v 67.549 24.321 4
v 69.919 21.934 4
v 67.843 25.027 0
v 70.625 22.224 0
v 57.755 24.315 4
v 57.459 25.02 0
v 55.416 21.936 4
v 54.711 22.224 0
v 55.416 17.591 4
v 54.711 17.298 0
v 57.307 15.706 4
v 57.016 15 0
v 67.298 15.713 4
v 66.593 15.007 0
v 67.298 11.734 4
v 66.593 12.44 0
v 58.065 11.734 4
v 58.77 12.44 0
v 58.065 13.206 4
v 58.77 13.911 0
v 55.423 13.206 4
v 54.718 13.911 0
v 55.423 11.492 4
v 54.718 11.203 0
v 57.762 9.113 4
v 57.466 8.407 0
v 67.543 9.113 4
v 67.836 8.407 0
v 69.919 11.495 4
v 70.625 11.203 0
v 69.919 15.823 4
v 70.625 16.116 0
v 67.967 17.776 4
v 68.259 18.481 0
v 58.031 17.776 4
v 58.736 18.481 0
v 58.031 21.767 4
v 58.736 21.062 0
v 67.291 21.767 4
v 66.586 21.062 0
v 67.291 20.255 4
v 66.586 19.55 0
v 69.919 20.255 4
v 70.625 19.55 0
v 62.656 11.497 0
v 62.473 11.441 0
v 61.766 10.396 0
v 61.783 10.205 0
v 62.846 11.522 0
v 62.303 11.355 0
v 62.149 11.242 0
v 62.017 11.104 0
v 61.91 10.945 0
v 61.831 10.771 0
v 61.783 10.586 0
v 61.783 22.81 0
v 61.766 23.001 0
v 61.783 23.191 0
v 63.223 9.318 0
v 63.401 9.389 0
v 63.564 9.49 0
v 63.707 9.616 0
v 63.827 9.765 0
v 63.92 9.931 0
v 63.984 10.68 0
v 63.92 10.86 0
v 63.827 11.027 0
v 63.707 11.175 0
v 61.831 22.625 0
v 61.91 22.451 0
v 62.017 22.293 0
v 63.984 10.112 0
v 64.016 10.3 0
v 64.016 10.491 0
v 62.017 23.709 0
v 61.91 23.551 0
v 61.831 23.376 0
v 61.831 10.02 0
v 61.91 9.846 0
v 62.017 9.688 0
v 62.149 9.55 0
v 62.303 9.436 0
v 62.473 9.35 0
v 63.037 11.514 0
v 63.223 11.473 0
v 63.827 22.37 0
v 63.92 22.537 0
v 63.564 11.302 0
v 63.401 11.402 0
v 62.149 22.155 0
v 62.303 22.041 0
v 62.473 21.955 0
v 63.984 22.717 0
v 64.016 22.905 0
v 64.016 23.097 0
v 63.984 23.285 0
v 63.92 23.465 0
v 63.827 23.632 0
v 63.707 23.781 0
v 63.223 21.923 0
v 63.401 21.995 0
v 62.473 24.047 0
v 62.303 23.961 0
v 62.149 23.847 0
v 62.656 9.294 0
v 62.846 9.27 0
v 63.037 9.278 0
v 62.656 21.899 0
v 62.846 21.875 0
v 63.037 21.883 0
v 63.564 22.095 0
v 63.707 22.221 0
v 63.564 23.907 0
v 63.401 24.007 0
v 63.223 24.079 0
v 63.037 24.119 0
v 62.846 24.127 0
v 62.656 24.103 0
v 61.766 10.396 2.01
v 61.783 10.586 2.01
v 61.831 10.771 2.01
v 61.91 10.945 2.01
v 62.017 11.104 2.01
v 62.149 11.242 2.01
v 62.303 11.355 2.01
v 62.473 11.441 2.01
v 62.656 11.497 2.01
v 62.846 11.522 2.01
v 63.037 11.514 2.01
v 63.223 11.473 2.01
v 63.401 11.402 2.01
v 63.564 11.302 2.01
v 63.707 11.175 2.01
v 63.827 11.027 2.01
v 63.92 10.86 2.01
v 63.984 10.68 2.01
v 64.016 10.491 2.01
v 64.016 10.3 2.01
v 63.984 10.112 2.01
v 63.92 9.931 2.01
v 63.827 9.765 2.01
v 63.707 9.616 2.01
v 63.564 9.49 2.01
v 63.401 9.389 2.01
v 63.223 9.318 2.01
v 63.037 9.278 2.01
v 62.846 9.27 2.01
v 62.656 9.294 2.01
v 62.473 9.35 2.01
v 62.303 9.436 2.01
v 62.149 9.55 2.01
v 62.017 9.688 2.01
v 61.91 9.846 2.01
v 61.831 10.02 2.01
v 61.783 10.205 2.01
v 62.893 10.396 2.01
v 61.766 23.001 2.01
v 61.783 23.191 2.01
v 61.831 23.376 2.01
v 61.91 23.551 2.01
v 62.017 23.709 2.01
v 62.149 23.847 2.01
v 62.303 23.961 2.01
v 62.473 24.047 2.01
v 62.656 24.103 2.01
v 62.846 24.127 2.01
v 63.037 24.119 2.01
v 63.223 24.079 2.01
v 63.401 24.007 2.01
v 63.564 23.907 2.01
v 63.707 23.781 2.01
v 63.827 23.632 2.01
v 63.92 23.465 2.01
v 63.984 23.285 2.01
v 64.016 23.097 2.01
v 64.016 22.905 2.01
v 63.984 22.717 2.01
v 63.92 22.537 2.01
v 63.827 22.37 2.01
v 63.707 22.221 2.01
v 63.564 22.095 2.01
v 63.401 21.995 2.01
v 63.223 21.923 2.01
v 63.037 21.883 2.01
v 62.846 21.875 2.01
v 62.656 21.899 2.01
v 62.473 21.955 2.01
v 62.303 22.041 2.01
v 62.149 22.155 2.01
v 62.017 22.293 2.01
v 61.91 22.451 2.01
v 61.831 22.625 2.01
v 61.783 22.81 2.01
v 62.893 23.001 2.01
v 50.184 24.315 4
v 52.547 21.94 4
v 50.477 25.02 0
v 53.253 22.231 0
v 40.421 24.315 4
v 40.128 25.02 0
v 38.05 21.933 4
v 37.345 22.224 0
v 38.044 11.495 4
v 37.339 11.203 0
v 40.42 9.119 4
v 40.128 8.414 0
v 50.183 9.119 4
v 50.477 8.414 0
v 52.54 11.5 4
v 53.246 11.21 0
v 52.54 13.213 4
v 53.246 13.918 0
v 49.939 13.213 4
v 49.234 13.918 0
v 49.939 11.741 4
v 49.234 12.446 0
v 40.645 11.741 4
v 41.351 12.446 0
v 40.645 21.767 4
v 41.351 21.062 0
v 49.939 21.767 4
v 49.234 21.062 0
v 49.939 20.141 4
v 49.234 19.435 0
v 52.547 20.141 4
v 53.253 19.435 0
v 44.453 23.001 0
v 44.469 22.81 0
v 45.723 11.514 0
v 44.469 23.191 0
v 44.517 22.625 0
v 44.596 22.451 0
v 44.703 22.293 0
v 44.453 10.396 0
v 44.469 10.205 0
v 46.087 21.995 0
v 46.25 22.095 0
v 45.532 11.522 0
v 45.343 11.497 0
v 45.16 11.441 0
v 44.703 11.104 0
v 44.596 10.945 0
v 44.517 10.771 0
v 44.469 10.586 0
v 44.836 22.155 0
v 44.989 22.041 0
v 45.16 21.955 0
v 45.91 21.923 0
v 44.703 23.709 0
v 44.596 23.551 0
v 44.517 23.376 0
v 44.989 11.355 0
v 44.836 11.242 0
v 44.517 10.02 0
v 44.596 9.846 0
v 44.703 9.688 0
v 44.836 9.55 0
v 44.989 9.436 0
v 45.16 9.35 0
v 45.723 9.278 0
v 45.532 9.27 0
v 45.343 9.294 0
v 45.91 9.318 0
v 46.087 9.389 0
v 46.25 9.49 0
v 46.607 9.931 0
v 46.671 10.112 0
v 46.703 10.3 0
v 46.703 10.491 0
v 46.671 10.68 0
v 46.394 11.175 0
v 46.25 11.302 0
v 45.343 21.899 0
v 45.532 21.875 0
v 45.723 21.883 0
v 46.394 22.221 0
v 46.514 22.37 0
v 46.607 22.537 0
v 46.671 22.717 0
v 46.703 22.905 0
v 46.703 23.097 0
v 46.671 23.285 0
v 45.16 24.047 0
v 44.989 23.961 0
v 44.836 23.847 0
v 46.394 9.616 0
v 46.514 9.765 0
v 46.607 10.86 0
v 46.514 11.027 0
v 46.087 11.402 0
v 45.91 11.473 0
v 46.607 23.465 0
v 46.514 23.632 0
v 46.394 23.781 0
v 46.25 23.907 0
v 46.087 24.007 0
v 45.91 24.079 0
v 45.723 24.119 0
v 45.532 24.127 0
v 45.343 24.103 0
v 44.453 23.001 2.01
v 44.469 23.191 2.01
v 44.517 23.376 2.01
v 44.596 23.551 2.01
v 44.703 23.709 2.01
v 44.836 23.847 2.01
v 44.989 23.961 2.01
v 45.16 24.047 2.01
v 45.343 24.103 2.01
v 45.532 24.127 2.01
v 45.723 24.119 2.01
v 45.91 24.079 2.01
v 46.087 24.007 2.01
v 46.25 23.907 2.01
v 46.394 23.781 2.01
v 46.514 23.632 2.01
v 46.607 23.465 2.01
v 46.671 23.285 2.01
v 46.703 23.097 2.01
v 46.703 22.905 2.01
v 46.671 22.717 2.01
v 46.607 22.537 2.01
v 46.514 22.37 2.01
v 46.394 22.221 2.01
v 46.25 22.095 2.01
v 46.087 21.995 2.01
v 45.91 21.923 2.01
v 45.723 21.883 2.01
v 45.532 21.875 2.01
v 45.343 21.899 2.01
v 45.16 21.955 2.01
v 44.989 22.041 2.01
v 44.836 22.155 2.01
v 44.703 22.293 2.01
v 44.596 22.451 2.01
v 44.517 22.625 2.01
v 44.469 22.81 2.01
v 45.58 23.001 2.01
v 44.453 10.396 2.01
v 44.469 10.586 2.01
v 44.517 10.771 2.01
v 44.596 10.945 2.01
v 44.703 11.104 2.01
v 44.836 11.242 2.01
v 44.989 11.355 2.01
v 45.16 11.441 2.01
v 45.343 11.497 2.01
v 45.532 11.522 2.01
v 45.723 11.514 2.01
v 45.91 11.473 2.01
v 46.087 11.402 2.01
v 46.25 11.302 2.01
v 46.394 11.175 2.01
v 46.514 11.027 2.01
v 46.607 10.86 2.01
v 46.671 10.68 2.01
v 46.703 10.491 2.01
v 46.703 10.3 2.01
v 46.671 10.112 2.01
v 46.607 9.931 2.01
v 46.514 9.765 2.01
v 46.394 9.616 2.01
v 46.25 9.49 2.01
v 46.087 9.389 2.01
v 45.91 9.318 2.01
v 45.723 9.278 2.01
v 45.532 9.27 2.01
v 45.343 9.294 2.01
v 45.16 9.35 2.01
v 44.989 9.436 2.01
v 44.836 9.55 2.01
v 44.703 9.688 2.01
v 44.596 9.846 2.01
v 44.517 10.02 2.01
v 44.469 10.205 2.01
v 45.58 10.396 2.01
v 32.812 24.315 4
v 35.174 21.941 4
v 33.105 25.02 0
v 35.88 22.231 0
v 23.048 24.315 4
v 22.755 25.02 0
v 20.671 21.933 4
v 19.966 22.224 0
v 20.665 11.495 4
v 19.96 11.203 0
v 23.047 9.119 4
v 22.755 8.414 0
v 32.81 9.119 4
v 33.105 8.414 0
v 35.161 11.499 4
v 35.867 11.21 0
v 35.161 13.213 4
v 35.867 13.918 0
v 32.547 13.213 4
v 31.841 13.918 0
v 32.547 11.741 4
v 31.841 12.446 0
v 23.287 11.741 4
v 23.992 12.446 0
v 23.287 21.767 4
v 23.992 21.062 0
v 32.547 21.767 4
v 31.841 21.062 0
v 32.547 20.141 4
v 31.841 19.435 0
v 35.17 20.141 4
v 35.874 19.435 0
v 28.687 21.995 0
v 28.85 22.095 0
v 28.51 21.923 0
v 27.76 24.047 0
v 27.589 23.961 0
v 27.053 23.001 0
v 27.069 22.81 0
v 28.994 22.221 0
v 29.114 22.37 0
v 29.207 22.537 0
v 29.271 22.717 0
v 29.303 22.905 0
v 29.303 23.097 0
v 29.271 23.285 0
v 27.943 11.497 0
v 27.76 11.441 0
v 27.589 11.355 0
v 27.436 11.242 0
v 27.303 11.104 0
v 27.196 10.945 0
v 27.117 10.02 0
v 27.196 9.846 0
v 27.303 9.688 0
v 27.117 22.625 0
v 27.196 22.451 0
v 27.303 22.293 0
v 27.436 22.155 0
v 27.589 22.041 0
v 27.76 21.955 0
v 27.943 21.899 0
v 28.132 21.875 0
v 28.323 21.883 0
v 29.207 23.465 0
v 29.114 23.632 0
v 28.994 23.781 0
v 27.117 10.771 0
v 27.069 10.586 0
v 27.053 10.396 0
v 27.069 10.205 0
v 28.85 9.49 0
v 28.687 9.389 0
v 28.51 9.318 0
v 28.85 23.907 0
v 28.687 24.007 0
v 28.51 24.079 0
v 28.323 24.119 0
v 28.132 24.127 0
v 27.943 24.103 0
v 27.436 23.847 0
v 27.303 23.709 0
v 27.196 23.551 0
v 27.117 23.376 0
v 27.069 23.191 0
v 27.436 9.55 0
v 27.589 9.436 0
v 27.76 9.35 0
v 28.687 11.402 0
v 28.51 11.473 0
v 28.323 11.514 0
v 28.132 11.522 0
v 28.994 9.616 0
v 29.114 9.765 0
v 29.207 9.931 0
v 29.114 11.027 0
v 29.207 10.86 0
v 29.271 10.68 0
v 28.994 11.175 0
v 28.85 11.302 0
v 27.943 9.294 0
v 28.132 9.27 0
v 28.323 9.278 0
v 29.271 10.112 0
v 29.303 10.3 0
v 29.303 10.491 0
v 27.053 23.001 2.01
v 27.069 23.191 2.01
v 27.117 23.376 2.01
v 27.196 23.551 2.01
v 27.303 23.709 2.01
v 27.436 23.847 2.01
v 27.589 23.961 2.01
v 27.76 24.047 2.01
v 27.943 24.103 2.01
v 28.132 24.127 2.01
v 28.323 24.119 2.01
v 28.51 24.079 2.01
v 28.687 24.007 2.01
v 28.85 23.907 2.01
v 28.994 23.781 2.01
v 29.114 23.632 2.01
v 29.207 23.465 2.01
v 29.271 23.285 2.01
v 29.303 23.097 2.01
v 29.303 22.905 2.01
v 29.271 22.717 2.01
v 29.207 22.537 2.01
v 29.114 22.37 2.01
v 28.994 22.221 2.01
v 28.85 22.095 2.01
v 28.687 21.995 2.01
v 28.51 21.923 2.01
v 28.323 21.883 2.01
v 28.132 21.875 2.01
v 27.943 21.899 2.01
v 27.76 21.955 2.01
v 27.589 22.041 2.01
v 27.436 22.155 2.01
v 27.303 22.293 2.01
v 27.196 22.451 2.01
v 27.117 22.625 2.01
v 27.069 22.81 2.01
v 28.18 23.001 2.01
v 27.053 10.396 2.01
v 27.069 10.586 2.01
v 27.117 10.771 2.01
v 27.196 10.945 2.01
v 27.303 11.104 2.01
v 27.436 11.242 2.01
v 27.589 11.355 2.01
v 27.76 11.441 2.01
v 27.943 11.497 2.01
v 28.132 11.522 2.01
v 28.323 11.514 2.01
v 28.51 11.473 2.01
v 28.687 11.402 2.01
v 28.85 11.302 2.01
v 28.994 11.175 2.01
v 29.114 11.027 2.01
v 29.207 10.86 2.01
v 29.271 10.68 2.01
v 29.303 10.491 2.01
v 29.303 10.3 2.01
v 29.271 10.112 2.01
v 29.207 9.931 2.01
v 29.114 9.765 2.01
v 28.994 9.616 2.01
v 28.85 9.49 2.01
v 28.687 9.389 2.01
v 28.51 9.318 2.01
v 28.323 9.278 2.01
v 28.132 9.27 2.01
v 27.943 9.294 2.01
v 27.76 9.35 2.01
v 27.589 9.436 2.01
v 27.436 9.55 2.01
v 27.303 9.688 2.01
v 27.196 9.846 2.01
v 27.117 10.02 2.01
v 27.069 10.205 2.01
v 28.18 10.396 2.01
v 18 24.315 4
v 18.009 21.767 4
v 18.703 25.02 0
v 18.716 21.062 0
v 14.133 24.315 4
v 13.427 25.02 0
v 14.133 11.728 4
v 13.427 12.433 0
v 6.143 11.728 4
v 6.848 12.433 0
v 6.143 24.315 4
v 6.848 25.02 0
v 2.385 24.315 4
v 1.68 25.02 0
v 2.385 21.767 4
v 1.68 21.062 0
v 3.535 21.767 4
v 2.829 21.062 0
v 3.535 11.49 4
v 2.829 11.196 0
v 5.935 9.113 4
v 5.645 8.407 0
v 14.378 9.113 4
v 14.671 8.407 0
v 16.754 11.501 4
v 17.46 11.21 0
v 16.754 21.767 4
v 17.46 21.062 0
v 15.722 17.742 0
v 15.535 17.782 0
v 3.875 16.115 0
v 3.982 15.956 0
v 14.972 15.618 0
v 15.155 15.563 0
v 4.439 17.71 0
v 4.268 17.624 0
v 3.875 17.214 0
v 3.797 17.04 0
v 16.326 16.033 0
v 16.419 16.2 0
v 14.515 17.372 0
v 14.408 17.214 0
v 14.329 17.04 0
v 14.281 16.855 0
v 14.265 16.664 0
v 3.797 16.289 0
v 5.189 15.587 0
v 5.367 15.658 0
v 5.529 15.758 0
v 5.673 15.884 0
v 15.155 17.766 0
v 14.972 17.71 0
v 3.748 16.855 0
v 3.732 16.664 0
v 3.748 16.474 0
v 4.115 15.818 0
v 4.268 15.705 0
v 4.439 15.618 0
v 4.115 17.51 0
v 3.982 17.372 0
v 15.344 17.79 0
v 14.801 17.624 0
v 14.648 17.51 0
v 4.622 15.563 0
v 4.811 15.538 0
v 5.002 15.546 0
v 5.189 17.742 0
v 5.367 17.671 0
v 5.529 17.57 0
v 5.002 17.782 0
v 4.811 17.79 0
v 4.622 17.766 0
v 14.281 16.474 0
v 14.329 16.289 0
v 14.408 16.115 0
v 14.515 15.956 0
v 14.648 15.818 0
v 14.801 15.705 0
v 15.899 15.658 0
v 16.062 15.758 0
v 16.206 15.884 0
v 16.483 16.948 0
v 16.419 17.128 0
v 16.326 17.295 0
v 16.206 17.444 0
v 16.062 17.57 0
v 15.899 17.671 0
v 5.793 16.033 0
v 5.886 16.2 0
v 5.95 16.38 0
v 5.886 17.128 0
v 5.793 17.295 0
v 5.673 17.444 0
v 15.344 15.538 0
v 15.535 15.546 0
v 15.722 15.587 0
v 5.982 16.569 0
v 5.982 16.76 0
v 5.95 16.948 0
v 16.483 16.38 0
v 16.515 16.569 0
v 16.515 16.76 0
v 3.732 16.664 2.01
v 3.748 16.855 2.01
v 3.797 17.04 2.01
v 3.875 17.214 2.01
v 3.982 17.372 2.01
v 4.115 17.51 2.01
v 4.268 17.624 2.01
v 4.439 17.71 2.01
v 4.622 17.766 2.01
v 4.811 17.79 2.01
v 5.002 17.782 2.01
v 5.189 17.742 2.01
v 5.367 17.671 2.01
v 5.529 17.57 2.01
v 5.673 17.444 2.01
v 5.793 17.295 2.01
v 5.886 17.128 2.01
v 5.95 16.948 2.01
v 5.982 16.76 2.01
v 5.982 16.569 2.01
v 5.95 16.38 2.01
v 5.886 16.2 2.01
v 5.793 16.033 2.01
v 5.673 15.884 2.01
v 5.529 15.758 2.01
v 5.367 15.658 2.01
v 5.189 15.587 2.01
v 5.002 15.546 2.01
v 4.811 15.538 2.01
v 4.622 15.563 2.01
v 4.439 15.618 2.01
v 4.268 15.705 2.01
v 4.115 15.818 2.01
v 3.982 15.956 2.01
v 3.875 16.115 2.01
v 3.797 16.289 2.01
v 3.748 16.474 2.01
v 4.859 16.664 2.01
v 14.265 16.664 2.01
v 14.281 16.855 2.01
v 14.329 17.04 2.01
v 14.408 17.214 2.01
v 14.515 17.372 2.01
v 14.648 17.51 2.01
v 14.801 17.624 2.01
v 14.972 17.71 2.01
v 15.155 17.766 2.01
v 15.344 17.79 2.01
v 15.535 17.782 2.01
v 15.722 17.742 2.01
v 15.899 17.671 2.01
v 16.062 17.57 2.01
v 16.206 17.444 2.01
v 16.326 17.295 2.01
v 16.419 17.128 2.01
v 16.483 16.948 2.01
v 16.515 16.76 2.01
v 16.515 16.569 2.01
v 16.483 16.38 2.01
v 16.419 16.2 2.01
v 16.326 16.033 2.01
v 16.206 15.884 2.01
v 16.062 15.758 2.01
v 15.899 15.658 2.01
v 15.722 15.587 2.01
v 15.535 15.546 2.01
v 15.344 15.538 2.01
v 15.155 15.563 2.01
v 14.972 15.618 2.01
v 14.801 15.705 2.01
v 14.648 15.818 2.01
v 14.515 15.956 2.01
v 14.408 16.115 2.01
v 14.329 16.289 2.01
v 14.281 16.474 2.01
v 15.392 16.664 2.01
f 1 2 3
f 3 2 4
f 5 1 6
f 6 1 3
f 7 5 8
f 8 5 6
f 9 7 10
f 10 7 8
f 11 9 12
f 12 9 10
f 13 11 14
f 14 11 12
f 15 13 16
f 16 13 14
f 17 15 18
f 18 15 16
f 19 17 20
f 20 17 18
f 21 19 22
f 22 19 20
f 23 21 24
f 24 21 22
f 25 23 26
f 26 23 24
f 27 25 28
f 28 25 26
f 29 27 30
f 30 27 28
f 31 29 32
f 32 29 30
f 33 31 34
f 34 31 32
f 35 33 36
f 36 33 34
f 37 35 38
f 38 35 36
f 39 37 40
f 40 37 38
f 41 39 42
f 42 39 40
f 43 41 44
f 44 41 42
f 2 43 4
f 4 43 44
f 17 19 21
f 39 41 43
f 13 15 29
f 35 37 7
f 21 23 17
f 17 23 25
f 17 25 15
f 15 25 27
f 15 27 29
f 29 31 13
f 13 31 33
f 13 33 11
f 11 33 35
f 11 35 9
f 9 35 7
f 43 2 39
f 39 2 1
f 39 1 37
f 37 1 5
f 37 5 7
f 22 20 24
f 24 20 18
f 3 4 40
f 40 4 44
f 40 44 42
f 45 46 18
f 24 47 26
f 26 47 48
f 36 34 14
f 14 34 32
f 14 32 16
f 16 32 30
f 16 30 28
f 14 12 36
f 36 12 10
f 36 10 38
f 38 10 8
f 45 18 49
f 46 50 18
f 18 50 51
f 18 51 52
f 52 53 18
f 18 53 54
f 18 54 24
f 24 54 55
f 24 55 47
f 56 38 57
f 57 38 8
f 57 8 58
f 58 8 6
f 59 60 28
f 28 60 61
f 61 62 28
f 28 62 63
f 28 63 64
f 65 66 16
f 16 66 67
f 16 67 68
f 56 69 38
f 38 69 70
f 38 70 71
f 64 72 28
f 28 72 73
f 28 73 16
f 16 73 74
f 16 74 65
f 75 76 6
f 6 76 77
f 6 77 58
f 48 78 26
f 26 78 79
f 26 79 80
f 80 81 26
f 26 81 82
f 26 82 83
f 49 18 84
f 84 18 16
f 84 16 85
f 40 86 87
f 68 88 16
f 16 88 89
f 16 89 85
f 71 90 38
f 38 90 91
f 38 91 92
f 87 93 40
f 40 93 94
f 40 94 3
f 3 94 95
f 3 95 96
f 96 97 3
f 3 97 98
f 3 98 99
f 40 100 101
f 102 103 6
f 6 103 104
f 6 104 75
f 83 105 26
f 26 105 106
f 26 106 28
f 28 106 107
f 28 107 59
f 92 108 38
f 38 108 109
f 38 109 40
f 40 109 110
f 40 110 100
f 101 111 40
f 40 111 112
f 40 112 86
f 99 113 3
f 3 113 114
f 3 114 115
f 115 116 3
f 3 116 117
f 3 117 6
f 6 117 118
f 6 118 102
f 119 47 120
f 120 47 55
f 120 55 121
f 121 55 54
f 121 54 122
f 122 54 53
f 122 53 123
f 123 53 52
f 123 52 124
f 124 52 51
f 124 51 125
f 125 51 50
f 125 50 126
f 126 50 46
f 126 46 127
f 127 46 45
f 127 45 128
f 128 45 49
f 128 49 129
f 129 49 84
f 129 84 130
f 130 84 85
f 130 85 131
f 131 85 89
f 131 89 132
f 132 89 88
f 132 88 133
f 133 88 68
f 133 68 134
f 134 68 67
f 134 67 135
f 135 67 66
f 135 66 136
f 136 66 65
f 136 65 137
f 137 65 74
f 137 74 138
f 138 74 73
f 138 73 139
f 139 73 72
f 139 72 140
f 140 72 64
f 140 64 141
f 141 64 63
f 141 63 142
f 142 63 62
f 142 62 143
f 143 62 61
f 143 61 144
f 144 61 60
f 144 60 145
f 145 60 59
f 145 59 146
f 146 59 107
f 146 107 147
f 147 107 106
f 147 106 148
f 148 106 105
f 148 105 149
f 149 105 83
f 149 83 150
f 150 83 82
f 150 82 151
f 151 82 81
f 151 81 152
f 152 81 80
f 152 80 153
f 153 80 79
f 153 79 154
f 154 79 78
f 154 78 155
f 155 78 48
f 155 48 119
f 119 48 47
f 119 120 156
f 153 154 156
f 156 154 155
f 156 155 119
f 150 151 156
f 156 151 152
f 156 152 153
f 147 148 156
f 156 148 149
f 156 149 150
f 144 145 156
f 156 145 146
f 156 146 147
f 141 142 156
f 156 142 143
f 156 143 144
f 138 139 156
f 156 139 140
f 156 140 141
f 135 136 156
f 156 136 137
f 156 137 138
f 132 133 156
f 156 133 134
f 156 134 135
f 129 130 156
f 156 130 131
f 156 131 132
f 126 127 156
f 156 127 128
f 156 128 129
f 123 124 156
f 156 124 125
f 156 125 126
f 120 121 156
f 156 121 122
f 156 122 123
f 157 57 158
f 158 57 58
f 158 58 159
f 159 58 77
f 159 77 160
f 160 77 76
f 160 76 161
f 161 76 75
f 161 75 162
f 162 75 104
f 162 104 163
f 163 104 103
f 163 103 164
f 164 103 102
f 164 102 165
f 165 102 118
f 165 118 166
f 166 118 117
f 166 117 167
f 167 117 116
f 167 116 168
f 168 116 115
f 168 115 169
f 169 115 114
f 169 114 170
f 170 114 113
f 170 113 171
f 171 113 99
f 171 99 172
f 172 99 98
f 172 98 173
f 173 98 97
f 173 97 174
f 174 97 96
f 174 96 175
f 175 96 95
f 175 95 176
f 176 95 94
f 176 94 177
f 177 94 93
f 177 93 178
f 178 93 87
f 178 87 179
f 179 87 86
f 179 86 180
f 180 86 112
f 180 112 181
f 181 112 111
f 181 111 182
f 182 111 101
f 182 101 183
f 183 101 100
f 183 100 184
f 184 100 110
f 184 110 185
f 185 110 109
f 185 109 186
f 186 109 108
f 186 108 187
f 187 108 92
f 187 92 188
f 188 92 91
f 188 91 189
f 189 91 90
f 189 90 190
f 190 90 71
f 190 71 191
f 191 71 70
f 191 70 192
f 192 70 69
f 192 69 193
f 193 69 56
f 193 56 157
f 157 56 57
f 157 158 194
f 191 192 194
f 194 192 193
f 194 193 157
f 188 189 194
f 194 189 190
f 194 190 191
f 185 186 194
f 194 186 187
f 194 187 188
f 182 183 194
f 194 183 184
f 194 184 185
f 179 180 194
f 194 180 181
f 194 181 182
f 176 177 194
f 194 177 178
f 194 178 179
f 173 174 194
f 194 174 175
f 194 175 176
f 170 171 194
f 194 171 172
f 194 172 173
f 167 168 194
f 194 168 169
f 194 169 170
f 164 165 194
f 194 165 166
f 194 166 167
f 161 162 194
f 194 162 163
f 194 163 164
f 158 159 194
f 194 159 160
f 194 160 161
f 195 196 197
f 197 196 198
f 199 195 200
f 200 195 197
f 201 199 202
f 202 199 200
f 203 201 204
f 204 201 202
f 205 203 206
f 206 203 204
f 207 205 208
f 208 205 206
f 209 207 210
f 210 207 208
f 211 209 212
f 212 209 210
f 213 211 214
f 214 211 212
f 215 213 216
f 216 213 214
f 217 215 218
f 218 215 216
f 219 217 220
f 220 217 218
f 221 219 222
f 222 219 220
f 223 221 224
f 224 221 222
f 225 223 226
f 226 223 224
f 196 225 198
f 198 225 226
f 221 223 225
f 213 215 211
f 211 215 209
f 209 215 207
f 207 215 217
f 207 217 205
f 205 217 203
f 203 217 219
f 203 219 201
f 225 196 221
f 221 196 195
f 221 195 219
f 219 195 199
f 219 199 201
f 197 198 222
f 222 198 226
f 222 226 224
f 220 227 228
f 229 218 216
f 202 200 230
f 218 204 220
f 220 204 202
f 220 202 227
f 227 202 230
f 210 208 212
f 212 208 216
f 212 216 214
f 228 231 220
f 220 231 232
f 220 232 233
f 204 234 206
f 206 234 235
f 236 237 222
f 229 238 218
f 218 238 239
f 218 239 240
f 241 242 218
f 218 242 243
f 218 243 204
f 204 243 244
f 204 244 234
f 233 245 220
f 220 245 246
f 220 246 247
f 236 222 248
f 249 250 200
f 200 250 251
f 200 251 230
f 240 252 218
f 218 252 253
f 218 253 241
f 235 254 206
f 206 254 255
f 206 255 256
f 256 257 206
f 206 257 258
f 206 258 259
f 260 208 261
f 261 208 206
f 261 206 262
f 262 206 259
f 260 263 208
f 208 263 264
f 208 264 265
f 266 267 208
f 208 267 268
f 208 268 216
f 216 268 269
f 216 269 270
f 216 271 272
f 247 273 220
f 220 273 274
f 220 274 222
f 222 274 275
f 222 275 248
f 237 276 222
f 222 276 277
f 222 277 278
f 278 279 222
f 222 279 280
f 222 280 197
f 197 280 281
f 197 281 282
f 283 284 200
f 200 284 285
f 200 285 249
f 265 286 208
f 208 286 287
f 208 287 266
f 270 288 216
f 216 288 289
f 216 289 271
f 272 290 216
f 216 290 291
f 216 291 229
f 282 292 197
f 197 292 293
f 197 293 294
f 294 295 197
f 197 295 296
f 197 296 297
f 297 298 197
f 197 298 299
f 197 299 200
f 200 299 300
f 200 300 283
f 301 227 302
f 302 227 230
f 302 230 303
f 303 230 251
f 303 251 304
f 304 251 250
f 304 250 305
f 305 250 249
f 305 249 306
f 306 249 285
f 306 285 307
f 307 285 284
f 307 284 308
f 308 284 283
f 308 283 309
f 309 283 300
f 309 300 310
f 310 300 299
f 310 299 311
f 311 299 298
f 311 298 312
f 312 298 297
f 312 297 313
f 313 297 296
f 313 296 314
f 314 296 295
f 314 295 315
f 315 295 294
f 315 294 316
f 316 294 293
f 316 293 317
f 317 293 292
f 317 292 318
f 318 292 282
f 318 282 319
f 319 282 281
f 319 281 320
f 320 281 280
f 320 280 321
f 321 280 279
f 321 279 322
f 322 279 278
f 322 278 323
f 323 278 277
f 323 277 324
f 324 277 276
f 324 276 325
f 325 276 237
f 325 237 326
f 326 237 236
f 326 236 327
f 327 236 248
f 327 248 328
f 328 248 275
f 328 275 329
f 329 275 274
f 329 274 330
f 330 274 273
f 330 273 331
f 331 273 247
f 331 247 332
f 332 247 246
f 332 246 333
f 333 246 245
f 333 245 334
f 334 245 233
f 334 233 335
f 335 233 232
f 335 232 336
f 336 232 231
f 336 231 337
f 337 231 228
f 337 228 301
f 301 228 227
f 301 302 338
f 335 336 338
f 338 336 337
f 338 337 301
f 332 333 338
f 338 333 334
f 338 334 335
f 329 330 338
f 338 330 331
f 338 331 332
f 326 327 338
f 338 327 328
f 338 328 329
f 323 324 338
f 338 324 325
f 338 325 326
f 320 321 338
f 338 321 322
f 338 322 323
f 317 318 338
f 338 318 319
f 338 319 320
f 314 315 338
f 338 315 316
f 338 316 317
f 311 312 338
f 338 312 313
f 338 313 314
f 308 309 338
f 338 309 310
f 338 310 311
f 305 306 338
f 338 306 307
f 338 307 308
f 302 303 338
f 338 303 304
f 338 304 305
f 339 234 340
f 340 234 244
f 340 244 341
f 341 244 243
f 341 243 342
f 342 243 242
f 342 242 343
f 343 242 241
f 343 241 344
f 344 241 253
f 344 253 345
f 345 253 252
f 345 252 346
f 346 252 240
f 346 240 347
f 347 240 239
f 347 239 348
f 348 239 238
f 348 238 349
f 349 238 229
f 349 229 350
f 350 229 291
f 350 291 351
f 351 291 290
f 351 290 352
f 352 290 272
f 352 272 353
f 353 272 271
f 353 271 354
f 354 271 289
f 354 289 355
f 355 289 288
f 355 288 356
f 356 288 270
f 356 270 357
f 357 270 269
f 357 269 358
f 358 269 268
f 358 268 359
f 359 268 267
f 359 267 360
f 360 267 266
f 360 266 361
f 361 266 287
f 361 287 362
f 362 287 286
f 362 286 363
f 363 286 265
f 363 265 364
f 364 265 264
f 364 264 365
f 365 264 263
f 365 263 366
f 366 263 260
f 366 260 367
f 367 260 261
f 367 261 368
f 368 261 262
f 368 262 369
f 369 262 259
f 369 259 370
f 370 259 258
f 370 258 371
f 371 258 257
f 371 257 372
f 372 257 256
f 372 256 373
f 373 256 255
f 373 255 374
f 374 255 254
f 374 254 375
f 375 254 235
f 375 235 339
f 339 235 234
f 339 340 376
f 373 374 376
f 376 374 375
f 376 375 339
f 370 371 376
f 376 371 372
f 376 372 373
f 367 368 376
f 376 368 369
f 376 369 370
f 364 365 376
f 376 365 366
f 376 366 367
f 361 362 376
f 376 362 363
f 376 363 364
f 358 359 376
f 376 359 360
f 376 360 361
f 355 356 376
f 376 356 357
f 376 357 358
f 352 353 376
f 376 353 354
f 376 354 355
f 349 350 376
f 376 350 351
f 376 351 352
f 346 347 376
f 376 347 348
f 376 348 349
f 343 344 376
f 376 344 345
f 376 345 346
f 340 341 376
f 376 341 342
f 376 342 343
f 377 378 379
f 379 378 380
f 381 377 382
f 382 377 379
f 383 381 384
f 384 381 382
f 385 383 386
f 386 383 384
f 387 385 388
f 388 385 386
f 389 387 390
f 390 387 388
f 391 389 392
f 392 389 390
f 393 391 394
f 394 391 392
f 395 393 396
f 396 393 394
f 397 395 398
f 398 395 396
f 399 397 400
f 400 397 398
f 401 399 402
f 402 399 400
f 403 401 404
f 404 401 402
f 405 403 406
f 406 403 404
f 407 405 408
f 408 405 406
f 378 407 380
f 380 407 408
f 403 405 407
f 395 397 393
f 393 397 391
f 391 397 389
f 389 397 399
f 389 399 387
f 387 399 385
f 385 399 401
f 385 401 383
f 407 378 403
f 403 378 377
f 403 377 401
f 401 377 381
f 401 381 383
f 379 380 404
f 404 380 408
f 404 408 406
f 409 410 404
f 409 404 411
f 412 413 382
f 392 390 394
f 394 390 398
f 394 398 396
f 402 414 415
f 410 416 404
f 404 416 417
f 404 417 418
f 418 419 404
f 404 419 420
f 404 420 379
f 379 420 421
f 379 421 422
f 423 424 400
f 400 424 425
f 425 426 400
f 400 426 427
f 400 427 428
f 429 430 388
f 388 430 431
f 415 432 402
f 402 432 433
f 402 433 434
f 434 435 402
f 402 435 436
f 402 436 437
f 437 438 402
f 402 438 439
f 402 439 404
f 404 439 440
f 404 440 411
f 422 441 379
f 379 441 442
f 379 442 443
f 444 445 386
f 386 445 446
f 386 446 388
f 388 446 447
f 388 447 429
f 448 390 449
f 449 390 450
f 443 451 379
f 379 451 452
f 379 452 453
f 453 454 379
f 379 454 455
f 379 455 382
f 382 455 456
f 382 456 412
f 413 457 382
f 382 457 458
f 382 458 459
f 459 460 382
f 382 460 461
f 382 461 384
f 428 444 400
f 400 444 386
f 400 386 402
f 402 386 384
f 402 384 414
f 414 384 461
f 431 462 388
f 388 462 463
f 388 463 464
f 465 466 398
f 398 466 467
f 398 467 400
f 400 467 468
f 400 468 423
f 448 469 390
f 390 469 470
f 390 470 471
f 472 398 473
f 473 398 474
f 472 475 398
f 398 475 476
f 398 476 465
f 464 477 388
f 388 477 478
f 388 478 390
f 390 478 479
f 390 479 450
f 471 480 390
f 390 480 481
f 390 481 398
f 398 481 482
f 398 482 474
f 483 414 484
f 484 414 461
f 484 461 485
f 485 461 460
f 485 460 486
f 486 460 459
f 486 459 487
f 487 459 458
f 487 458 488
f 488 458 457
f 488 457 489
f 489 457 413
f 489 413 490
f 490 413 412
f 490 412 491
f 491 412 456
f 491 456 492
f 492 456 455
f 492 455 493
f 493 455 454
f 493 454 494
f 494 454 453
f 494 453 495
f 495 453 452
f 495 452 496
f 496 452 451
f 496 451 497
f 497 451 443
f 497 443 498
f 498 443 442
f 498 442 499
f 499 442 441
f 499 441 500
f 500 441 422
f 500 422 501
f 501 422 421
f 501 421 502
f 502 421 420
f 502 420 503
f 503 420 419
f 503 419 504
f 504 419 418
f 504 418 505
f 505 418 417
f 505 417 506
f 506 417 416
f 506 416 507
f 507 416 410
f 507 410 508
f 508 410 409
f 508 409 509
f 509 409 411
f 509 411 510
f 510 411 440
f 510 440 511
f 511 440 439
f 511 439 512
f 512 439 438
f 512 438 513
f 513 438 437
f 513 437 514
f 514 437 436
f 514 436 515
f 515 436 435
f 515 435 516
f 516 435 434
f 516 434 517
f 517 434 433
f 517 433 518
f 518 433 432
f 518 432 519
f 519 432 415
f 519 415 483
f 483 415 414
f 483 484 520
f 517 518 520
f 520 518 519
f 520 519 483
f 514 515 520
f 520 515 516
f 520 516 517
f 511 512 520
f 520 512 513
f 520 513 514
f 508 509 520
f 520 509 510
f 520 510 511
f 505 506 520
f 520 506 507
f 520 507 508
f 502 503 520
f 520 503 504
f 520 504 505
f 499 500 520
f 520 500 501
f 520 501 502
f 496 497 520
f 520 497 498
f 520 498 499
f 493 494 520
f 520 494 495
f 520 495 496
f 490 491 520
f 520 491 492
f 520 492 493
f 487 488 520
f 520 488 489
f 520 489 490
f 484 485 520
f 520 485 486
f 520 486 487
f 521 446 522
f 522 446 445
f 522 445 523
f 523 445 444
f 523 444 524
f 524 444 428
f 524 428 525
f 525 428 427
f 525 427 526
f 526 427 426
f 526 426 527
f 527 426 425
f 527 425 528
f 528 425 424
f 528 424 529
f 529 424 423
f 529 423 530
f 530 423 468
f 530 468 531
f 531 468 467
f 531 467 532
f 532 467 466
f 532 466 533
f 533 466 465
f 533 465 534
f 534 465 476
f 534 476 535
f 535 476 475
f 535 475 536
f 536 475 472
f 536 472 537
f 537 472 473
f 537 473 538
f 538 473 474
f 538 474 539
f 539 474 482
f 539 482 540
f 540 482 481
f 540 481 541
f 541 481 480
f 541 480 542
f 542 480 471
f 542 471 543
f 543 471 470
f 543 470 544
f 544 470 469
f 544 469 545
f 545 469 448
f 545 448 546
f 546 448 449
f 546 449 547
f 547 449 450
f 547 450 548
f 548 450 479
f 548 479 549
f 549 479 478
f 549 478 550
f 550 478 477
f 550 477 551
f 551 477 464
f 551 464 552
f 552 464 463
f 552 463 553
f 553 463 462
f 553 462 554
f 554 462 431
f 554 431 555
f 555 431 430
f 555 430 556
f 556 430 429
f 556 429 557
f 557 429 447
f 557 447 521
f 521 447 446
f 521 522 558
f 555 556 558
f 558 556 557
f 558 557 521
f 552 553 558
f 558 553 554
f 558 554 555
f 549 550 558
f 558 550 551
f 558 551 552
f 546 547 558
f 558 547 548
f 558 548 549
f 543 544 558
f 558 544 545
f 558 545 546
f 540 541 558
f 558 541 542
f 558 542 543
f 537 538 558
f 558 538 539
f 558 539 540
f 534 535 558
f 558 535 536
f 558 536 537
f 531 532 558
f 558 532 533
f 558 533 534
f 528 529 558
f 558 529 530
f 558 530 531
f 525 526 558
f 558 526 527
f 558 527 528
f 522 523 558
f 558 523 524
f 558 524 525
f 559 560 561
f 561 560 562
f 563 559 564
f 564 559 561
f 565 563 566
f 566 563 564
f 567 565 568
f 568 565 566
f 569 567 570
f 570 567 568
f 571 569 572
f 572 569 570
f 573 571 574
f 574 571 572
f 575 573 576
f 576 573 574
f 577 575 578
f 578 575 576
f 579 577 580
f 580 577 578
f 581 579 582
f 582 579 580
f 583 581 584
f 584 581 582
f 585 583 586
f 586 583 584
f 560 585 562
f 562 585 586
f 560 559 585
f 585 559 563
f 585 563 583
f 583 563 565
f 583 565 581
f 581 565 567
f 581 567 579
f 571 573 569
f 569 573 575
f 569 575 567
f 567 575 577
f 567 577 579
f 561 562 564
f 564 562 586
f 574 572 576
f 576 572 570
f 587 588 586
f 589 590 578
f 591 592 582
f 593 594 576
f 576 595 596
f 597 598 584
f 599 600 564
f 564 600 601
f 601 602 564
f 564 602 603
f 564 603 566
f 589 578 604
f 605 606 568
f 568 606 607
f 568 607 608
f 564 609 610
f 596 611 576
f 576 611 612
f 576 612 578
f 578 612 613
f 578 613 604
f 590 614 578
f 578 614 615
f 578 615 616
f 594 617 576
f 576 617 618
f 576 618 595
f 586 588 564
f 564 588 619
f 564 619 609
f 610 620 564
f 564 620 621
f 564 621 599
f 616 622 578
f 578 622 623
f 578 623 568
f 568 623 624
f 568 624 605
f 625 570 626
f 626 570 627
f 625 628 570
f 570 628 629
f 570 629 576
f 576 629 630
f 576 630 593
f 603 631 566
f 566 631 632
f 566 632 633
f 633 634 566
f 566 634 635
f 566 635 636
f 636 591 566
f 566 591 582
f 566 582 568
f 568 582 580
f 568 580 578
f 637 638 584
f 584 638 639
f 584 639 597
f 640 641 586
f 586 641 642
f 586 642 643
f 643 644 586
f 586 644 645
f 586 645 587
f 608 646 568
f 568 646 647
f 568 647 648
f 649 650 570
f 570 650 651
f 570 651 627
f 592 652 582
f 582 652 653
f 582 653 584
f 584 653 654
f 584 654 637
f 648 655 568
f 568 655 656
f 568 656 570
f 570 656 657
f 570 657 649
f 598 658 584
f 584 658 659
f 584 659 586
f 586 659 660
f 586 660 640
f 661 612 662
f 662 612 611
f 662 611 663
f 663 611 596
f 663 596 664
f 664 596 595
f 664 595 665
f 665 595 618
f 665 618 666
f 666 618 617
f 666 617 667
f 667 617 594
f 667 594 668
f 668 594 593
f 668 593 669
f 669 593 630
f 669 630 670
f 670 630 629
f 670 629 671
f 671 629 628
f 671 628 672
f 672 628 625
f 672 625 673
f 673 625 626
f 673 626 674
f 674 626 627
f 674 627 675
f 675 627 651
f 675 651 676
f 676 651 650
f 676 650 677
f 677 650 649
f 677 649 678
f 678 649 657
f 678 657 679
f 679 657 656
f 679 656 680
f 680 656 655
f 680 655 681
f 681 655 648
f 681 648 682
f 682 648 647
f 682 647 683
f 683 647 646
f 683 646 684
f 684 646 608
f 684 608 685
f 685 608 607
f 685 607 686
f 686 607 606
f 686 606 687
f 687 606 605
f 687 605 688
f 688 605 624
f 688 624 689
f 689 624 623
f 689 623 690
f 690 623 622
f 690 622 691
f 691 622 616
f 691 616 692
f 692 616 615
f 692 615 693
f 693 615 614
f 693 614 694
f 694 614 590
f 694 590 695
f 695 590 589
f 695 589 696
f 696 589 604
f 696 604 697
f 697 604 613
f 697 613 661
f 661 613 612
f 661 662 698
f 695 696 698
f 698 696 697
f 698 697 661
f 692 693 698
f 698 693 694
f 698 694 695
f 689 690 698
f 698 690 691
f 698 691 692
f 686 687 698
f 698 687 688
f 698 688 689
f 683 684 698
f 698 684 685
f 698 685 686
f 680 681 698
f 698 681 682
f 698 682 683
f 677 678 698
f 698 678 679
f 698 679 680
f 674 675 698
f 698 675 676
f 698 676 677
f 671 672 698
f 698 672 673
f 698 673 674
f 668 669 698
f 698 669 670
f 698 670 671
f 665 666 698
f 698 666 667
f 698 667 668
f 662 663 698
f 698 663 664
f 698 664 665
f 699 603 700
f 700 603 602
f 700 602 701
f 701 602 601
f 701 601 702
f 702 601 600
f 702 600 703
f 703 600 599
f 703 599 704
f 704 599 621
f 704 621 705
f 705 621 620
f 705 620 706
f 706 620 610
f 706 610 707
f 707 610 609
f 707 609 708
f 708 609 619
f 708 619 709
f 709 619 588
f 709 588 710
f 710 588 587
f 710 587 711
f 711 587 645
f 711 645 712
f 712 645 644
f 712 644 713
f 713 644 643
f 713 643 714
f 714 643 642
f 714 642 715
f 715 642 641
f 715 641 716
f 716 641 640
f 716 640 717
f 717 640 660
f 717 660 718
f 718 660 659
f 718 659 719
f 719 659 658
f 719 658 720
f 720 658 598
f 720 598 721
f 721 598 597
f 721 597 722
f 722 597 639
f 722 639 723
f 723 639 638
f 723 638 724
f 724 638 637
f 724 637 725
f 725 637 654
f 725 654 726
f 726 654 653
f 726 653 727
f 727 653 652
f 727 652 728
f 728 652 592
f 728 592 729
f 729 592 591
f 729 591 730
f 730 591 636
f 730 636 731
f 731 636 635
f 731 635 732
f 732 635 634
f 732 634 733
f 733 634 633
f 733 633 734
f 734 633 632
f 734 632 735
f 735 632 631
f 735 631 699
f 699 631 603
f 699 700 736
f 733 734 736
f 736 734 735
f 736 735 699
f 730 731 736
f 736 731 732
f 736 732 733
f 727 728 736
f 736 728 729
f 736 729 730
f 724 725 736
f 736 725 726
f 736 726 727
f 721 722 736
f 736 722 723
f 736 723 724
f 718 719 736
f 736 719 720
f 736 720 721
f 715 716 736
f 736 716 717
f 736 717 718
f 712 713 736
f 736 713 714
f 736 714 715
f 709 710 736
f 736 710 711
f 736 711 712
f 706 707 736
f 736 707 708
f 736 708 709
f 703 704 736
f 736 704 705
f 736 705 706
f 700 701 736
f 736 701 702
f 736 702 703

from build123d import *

# Parameters (mm, degrees)
BOSS_EXTRUDE1_DEPTH           = 4
BOSS_EXTRUDE1_DRAFT           = 10
BOSS_EXTRUDE1_PROFILE_2_DEPTH = 4
BOSS_EXTRUDE1_PROFILE_2_DRAFT = 10
BOSS_EXTRUDE1_PROFILE_3_DEPTH = 4
BOSS_EXTRUDE1_PROFILE_3_DRAFT = 10
BOSS_EXTRUDE1_PROFILE_4_DEPTH = 4
BOSS_EXTRUDE1_PROFILE_4_DRAFT = 10
SKETCH5_R                     = 1.127
CUT_EXTRUDE1_DEPTH            = 2.01


with BuildPart() as part:
    # Sketch2 → Boss-Extrude1 (with draft: the straight prism first)
    with BuildSketch(Plane.XY):
        Polygon((67.842511, 25.0268486), (57.459499, 25.020143), (54.710838, 22.2244412), (54.710838, 17.2983906), (57.0159388, 15.0000208), (66.5925262, 15.0067264), (66.5925262, 12.4395484), (58.7699612, 12.4395484), (58.7699612, 13.9113006), (54.717569, 13.9113006), (54.717569, 11.2029748), (57.4662046, 8.4072984), (67.8358054, 8.4072984), (70.6247762, 11.2029748), (70.6247762, 16.1155888), (68.259198, 18.4811924), (58.736357, 18.4811924), (58.736357, 21.061807), (66.5857952, 21.061807), (66.5857952, 19.5497196), (70.6247762, 19.5497196), (70.6247762, 22.2244412), align=None)
    extrude(amount=BOSS_EXTRUDE1_DEPTH)
    # Boss-Extrude1: the draft: its side faces are tilted about the plane it starts from
    boss_extrude1_sides = [part.faces().sort_by_distance(p)[0] for p in [
        (62.651005, 25.0234958, 2),
        (56.0851685, 23.6222921, 2),
        (54.710838, 19.7614159, 2),
        (55.8633884, 16.1492057, 2),
        (61.8042325, 15.0033736, 2),
        (66.5925262, 13.7231374, 2),
        (62.6812437, 12.4395484, 2),
        (58.7699612, 13.1754245, 2),
        (56.7437651, 13.9113006, 2),
        (54.717569, 12.5571377, 2),
        (56.0918868, 9.8051366, 2),
        (62.651005, 8.4072984, 2),
        (69.2302908, 9.8051366, 2),
        (70.6247762, 13.6592818, 2),
        (69.4419871, 17.2983906, 2),
        (63.4977775, 18.4811924, 2),
        (58.736357, 19.7714997, 2),
        (62.6610761, 21.061807, 2),
        (66.5857952, 20.3057633, 2),
        (68.6052857, 19.5497196, 2),
        (70.6247762, 20.8870804, 2),
        (69.2336436, 23.6256449, 2),
    ]]
    draft(boss_extrude1_sides, Plane.XY, BOSS_EXTRUDE1_DRAFT)


with BuildPart() as body_2:
    # Sketch2 → Boss-Extrude1 profile 2 (with draft: the straight prism first)
    with BuildSketch(Plane.XY):
        Polygon((50.4769882, 25.020143), (40.127555, 25.020143), (37.3453152, 22.2244412), (37.3385842, 11.2029748), (40.127555, 8.414004), (50.4769882, 8.414004), (53.2457914, 11.2097058), (53.2457914, 13.9180316), (49.233709, 13.9180316), (49.233709, 12.446254), (41.3506666, 12.446254), (41.3506666, 21.061807), (49.233709, 21.061807), (49.233709, 19.4354704), (53.2525224, 19.4354704), (53.2525224, 22.2311722), align=None)
    extrude(amount=BOSS_EXTRUDE1_PROFILE_2_DEPTH)
    # Boss-Extrude1 profile 2: the draft: its side faces are tilted about the plane it starts from
    boss_extrude1_profile_2_sides = [body_2.faces().sort_by_distance(p)[0] for p in [
        (45.3022716, 25.020143, 2),
        (38.7364351, 23.6222921, 2),
        (37.3419497, 16.713708, 2),
        (38.7330696, 9.8084894, 2),
        (45.3022716, 8.414004, 2),
        (51.8613898, 9.8118549, 2),
        (53.2457914, 12.5638687, 2),
        (51.2397502, 13.9180316, 2),
        (49.233709, 13.1821428, 2),
        (45.2921878, 12.446254, 2),
        (41.3506666, 16.7540305, 2),
        (45.2921878, 21.061807, 2),
        (49.233709, 20.2486387, 2),
        (51.2431157, 19.4354704, 2),
        (53.2525224, 20.8333213, 2),
        (51.8647553, 23.6256576, 2),
    ]]
    draft(boss_extrude1_profile_2_sides, Plane.XY, BOSS_EXTRUDE1_PROFILE_2_DRAFT)


with BuildPart() as body_3:
    # Sketch2 → Boss-Extrude1 profile 3 (with draft: the straight prism first)
    with BuildSketch(Plane.XY):
        Polygon((33.1047344, 25.020143), (22.7553012, 25.020143), (19.9663304, 22.2244412), (19.9596248, 11.2029748), (22.7553012, 8.414004), (33.1047344, 8.414004), (35.8668066, 11.2097058), (35.8668066, 13.9180316), (31.8412876, 13.9180316), (31.8412876, 12.446254), (23.9918494, 12.446254), (23.9918494, 21.061807), (31.8412876, 21.061807), (31.8412876, 19.4354704), (35.8735376, 19.4354704), (35.8802686, 22.2311722), align=None)
    extrude(amount=BOSS_EXTRUDE1_PROFILE_3_DEPTH)
    # Boss-Extrude1 profile 3: the draft: its side faces are tilted about the plane it starts from
    boss_extrude1_profile_3_sides = [body_3.faces().sort_by_distance(p)[0] for p in [
        (27.9300178, 25.020143, 2),
        (21.3608158, 23.6222921, 2),
        (19.9629776, 16.713708, 2),
        (21.357463, 9.8084894, 2),
        (27.9300178, 8.414004, 2),
        (34.4857705, 9.8118549, 2),
        (35.8668066, 12.5638687, 2),
        (33.8540471, 13.9180316, 2),
        (31.8412876, 13.1821428, 2),
        (27.9165685, 12.446254, 2),
        (23.9918494, 16.7540305, 2),
        (27.9165685, 21.061807, 2),
        (31.8412876, 20.2486387, 2),
        (33.8574126, 19.4354704, 2),
        (35.8769031, 20.8333213, 2),
        (34.4925015, 23.6256576, 2),
    ]]
    draft(boss_extrude1_profile_3_sides, Plane.XY, BOSS_EXTRUDE1_PROFILE_3_DRAFT)


with BuildPart() as body_4:
    # Sketch2 → Boss-Extrude1 profile 4 (with draft: the straight prism first)
    with BuildSketch(Plane.XY):
        Polygon((18.7028836, 25.020143), (13.4273798, 25.020143), (13.4273798, 12.4328174), (6.848094, 12.4328174), (6.848094, 25.020143), (1.6801084, 25.020143), (1.6801084, 21.061807), (2.8292806, 21.061807), (2.8292806, 11.1962692), (5.64515, 8.4072984), (14.670659, 8.4072984), (17.4596298, 11.2097058), (17.4596298, 21.061807), (18.7163456, 21.061807), align=None)
    extrude(amount=BOSS_EXTRUDE1_PROFILE_4_DEPTH)
    # Boss-Extrude1 profile 4: the draft: its side faces are tilted about the plane it starts from
    boss_extrude1_profile_4_sides = [body_4.faces().sort_by_distance(p)[0] for p in [
        (16.0651317, 25.020143, 2),
        (13.4273798, 18.7264802, 2),
        (10.1377369, 12.4328174, 2),
        (6.848094, 18.7264802, 2),
        (4.2641012, 25.020143, 2),
        (1.6801084, 23.040975, 2),
        (2.2546945, 21.061807, 2),
        (2.8292806, 16.1290381, 2),
        (4.2372153, 9.8017838, 2),
        (10.1579045, 8.4072984, 2),
        (16.0651444, 9.8085021, 2),
        (17.4596298, 16.1357564, 2),
        (18.0879877, 21.061807, 2),
        (18.7096146, 23.040975, 2),
    ]]
    draft(boss_extrude1_profile_4_sides, Plane.XY, BOSS_EXTRUDE1_PROFILE_4_DRAFT)


with BuildPart() as cut_extrude1_tool:
    # Sketch5 → Cut-Extrude1 (new body)
    with BuildSketch(Plane(origin=(0, 0, 0), x_dir=(-1, 0, 0), z_dir=(0, 0, -1))):
        with Locations((-62.893400367, 23.000943998)):
            Circle(SKETCH5_R)
        with Locations((-62.893400367, 10.395661235)):
            Circle(SKETCH5_R)
        with Locations((-45.580114566, 10.395661235)):
            Circle(SKETCH5_R)
        with Locations((-45.580114566, 23.000943998)):
            Circle(SKETCH5_R)
        with Locations((-28.180118275, 10.395661235)):
            Circle(SKETCH5_R)
        with Locations((-28.180118275, 23.000943998)):
            Circle(SKETCH5_R)
        with Locations((-15.392085226, 16.664206801)):
            Circle(SKETCH5_R)
        with Locations((-4.859282247, 16.664206801)):
            Circle(SKETCH5_R)
    extrude(amount=-CUT_EXTRUDE1_DEPTH)


with BuildPart() as part_1:
    add(part.part)

    # Cut-Extrude1: cut by cut_extrude1_tool
    add(cut_extrude1_tool.part, mode=Mode.SUBTRACT)


with BuildPart() as body_2_1:
    add(body_2.part)

    # Cut-Extrude1: cut by cut_extrude1_tool
    add(cut_extrude1_tool.part, mode=Mode.SUBTRACT)


with BuildPart() as body_3_1:
    add(body_3.part)

    # Cut-Extrude1: cut by cut_extrude1_tool
    add(cut_extrude1_tool.part, mode=Mode.SUBTRACT)


with BuildPart() as body_4_1:
    add(body_4.part)

    # Cut-Extrude1: cut by cut_extrude1_tool
    add(cut_extrude1_tool.part, mode=Mode.SUBTRACT)


solid = Compound([part_1.part, body_2_1.part, body_3_1.part, body_4_1.part])
